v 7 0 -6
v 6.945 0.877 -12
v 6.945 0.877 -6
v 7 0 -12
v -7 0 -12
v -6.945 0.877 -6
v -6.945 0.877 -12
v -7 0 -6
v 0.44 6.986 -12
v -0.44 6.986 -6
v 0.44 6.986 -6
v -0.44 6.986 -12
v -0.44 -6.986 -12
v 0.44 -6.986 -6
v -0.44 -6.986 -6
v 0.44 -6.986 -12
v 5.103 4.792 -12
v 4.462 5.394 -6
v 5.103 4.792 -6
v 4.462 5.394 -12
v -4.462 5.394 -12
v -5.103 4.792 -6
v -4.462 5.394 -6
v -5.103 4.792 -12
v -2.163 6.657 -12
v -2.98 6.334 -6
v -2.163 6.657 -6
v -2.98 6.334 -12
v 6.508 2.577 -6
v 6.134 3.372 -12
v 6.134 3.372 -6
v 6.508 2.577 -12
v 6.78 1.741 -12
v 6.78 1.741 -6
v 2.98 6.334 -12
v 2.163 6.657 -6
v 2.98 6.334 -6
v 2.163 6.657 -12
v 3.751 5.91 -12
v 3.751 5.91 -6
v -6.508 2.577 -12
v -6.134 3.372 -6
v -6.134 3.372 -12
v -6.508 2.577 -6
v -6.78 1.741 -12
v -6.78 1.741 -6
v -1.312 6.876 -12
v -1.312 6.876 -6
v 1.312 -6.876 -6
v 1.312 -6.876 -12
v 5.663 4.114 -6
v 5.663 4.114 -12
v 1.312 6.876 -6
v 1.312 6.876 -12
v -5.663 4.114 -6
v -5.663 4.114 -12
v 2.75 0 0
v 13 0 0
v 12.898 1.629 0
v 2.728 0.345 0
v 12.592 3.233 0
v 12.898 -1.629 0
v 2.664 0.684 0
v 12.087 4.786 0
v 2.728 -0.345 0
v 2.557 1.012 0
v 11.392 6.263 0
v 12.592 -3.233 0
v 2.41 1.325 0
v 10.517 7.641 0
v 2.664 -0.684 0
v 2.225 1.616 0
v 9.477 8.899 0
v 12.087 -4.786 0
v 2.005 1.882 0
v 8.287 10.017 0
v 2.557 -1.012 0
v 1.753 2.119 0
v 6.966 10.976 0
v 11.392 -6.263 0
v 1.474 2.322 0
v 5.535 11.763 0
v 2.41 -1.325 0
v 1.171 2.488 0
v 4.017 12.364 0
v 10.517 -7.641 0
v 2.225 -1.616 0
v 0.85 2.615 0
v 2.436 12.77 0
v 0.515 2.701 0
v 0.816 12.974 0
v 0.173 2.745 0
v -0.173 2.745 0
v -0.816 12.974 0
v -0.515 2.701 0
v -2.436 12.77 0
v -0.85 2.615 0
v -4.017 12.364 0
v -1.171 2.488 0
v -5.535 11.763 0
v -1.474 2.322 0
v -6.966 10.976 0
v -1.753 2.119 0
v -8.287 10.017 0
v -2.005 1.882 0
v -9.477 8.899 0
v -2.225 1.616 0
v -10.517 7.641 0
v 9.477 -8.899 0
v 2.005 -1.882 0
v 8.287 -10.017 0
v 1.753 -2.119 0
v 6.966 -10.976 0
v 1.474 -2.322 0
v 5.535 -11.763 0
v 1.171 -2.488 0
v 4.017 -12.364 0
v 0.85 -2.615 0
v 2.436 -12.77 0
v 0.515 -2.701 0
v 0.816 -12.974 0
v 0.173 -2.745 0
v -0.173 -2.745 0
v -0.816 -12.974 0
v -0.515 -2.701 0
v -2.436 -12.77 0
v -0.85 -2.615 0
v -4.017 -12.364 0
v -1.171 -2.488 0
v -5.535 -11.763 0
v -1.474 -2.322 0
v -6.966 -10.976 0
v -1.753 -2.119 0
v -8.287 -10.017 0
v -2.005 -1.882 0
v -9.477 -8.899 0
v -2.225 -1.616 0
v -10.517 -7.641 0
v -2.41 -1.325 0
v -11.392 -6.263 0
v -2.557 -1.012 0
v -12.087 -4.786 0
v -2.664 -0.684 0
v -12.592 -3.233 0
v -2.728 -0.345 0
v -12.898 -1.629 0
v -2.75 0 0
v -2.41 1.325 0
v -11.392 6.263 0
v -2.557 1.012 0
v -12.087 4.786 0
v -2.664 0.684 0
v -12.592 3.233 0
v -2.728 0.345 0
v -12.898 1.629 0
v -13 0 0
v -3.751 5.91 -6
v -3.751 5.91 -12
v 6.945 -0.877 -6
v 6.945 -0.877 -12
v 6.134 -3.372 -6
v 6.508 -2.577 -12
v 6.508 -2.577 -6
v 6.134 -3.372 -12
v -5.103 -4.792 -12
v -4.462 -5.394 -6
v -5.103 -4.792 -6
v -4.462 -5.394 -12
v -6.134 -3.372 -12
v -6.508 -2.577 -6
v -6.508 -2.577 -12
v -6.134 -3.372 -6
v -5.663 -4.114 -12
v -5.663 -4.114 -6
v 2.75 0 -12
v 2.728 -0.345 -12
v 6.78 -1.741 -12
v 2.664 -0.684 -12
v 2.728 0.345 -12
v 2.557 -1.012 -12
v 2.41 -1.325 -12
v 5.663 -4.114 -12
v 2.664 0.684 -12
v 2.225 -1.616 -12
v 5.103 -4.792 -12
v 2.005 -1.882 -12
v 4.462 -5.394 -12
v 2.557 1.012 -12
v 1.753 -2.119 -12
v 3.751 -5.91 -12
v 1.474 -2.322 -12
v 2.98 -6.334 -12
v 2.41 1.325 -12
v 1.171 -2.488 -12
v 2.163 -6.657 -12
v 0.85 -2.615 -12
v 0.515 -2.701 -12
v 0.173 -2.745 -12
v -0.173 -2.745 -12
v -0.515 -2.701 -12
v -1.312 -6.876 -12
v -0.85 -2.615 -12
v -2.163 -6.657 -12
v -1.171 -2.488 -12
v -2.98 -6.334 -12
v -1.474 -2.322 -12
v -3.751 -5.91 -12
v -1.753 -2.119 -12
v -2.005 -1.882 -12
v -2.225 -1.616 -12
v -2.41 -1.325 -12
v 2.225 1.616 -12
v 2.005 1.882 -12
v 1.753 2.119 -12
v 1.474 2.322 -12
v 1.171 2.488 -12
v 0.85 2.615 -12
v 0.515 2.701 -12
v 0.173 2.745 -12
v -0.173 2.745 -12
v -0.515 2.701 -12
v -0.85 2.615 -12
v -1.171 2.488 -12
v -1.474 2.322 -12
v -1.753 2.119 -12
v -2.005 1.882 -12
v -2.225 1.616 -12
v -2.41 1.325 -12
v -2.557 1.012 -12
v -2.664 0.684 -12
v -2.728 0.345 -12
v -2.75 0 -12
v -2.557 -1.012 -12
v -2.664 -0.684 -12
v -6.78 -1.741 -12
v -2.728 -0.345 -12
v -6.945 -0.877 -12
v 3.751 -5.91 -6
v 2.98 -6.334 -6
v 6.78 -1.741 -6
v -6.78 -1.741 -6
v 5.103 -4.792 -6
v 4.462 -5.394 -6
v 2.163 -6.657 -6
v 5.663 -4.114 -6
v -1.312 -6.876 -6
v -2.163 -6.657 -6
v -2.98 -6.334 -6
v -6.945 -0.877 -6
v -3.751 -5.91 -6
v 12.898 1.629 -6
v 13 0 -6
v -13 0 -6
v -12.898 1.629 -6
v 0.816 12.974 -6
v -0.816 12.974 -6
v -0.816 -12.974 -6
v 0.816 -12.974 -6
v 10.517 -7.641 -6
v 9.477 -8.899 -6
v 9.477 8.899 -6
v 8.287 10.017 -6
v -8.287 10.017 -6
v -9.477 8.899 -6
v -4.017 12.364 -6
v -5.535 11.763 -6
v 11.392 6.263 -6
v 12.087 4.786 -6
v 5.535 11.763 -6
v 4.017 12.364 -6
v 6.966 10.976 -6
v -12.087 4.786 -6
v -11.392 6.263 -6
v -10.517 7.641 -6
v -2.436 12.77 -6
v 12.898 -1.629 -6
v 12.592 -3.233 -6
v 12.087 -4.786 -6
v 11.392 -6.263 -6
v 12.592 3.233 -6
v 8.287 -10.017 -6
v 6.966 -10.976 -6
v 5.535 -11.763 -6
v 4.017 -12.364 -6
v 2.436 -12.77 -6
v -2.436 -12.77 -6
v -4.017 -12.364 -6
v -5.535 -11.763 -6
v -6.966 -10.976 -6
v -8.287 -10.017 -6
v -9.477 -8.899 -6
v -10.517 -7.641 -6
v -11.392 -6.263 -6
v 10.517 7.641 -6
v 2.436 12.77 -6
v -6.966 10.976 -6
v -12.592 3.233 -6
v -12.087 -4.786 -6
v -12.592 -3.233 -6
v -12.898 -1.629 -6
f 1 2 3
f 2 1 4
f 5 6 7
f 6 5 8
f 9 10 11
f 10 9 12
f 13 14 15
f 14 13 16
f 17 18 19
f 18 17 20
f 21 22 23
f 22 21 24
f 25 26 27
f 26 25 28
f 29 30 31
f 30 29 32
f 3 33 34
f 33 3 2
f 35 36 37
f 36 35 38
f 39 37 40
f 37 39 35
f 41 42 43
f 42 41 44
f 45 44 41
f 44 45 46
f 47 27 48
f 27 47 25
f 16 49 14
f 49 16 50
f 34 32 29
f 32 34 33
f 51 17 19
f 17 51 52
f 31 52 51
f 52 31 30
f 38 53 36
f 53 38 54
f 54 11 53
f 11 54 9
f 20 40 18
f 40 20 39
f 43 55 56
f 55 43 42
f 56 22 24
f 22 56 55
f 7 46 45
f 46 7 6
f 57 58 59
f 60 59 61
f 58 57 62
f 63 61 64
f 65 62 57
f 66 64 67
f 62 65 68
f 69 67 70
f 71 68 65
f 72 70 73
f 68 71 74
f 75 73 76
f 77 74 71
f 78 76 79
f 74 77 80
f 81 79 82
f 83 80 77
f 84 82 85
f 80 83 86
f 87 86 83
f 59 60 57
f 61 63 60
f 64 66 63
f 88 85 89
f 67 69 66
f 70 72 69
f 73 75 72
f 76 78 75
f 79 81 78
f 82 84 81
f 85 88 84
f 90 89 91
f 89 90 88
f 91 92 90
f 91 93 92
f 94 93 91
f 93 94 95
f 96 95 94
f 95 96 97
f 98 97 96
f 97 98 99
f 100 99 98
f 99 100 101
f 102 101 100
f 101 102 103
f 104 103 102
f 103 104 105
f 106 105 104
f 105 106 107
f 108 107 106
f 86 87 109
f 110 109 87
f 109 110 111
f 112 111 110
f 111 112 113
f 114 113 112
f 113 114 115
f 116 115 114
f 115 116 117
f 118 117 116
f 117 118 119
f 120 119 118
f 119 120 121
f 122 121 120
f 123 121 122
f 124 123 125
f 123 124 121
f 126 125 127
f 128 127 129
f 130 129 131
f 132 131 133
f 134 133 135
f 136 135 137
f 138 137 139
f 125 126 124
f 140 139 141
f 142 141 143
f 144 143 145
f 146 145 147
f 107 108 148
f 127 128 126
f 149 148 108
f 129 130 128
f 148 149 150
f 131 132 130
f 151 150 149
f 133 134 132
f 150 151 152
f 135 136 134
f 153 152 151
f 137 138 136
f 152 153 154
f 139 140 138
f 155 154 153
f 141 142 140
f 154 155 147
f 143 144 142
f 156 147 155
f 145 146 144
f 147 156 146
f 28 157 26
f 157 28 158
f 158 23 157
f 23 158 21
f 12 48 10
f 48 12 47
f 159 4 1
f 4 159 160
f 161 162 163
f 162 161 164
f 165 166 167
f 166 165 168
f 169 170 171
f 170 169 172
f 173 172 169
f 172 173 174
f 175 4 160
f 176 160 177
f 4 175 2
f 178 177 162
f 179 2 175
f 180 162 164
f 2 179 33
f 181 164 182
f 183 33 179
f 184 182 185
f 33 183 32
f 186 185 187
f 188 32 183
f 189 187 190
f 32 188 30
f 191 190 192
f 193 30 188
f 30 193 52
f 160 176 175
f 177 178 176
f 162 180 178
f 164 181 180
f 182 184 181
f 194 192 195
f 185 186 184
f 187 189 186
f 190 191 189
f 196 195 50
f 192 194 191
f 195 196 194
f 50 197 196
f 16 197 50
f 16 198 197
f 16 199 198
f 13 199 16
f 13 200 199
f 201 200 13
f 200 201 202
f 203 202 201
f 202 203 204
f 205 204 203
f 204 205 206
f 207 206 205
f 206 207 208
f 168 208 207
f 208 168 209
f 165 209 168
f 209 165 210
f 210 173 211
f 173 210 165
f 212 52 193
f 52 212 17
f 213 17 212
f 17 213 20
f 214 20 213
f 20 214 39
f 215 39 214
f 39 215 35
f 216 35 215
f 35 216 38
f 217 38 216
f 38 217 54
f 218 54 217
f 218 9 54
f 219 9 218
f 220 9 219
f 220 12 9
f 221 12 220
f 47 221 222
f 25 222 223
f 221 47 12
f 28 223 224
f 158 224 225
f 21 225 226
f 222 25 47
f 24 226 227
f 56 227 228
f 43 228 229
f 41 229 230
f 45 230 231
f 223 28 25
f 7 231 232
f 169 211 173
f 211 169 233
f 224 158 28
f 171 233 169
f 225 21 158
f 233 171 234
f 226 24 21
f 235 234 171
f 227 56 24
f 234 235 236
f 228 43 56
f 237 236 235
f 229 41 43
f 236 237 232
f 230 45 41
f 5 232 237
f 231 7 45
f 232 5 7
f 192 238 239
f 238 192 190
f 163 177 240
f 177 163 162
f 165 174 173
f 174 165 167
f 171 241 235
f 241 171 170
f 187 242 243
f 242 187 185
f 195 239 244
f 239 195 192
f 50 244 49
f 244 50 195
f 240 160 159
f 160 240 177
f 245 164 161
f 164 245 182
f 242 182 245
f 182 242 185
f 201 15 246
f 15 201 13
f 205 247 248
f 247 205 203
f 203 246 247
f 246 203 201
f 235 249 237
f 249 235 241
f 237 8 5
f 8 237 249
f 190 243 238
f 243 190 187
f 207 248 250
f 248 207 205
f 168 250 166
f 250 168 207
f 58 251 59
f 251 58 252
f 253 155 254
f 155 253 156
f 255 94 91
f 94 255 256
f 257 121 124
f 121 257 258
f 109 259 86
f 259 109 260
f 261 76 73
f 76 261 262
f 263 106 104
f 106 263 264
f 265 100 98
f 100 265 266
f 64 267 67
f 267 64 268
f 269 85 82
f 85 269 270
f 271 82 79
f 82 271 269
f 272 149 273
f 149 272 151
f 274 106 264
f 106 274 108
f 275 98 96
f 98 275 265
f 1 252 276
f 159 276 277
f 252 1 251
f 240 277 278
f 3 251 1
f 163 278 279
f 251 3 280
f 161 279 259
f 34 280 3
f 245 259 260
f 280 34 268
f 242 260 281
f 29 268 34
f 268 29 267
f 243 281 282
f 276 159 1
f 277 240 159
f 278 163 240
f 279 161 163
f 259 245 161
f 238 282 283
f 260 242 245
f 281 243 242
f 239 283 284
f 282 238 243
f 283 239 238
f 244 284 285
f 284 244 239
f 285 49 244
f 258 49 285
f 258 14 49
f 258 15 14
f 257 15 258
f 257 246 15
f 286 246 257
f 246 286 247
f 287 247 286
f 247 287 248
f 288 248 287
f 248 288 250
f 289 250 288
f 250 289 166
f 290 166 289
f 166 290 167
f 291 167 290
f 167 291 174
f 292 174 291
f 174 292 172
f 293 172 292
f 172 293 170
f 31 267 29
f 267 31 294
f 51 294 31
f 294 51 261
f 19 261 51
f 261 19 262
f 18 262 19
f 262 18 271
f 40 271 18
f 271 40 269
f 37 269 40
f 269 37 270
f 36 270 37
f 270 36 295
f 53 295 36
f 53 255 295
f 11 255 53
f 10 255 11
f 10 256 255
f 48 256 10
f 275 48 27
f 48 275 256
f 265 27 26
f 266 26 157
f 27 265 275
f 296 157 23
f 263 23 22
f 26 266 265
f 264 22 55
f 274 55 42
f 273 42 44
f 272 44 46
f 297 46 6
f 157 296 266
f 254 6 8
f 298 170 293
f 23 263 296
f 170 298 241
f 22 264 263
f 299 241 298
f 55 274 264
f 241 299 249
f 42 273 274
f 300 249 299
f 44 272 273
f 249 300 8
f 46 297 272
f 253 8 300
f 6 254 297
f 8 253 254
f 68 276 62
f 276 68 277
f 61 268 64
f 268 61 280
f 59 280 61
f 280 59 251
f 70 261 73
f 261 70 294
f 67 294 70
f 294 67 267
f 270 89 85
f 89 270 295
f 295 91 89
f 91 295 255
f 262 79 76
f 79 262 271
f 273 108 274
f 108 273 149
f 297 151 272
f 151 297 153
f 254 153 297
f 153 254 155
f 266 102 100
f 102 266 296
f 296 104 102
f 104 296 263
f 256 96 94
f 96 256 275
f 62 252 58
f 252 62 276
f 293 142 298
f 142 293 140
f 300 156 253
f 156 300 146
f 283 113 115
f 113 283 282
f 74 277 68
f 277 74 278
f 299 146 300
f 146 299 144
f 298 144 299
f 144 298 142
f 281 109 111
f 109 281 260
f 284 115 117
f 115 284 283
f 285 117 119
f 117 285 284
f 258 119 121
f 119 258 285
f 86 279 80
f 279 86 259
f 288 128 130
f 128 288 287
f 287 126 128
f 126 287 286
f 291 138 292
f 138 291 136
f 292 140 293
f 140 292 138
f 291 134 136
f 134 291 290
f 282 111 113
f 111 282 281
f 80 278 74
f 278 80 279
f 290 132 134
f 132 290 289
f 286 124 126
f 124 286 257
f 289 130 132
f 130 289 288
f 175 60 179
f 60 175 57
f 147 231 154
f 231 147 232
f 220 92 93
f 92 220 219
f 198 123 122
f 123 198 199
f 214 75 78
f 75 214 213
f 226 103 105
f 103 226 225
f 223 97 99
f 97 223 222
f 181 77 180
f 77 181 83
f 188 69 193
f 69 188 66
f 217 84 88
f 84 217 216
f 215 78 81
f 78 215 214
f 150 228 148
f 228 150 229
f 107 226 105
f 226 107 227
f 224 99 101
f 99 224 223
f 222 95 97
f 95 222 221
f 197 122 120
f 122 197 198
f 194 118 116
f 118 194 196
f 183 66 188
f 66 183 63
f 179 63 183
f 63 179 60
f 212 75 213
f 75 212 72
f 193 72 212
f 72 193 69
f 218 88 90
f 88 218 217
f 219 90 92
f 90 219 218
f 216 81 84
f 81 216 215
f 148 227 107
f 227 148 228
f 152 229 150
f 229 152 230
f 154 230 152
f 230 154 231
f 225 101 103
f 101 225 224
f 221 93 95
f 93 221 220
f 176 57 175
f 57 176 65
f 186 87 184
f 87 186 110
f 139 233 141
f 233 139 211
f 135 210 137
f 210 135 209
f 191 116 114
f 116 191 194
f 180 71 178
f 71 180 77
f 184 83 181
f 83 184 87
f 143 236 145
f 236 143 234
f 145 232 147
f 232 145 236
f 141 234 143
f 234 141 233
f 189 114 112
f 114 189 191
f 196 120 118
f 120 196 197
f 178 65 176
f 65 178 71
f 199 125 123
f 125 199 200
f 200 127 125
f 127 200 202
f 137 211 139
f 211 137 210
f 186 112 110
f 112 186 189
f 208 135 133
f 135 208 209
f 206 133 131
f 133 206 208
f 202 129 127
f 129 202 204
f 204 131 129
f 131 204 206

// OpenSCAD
$fn = 50;


difference() {
	union() {
		translate(v = [0, 0, -12.0000000000]) {
			cylinder(h = 12, r = 7.0000000000);
		}
		translate(v = [0, 0, -6.0000000000]) {
			cylinder(h = 6, r = 13.0000000000);
		}
	}
	union() {
		#translate(v = [0, 0, -12]) {
			cylinder(h = 12, r = 2.7500000000);
		}
	}
}
